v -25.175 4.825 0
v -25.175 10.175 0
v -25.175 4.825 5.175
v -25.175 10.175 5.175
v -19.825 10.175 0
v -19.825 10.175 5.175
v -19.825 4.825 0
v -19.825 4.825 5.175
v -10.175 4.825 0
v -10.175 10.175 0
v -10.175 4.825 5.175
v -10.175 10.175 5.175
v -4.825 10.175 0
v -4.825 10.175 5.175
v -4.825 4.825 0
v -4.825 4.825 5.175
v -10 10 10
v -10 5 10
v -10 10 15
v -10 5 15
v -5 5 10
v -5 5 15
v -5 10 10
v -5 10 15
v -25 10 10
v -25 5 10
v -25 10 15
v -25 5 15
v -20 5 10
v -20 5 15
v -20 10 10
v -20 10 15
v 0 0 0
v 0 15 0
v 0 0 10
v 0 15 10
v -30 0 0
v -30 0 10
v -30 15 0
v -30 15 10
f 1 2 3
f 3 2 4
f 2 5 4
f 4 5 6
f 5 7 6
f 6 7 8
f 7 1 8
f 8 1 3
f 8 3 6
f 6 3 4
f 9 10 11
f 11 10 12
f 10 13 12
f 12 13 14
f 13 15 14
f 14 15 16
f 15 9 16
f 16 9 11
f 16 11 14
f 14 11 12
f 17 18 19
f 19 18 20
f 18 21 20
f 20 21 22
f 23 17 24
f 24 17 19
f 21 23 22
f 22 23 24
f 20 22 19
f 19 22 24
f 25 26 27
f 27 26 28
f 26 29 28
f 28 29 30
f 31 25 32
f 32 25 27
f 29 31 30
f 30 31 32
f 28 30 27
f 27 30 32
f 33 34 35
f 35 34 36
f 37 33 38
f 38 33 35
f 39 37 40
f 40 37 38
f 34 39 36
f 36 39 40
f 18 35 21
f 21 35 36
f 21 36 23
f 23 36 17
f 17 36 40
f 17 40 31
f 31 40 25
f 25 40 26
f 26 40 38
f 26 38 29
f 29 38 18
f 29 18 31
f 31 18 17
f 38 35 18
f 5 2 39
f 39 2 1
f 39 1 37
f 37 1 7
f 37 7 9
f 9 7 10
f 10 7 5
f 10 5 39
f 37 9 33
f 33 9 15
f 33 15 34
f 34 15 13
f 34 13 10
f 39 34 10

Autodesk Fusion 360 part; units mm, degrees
sketch "Sketch1" plane through (0, 0, 0) normal (0, 0, 1) x (1, 0, 0)
  line L0 (0, 0) -> (-30, 0)
  line L1 (-30, 0) -> (-30, 15)
  line L2 (-30, 15) -> (0, 15)
  line L3 (0, 15) -> (0, 0)
  line L4 (-15, 0) -> (-15, 15)
  line L5 (-25, 10) -> (-20, 10)
  line L6 (-20, 10) -> (-20, 5)
  line L7 (-20, 5) -> (-25, 5)
  line L8 (-25, 5) -> (-25, 10)
  line L9 (-10, 10) -> (-5, 10)
  line L10 (-5, 10) -> (-5, 5)
  line L11 (-5, 5) -> (-10, 5)
  line L12 (-10, 5) -> (-10, 10)
  line L13 (-25.175, 10.175) -> (-19.825, 10.175)
  line L14 (-19.825, 10.175) -> (-19.825, 4.825)
  line L15 (-19.825, 4.825) -> (-25.175, 4.825)
  line L16 (-25.175, 4.825) -> (-25.175, 10.175)
  line L17 (-10.175, 10.175) -> (-4.825, 10.175)
  line L18 (-4.825, 10.175) -> (-4.825, 4.825)
  line L19 (-4.825, 4.825) -> (-10.175, 4.825)
  line L20 (-10.175, 4.825) -> (-10.175, 10.175)
  dimension "d1" = 30
  dimension "d2" = 15
  dimension "d7" = -0.175
  dimension "d8" = -0.175
extrude "Extrude1" add sketch "Sketch1" along normal blind 10 contours L0 L2 L3 L4 | L0 L1 L2 L4 | L13 L14 L15 L16 | L17 L18 L19 L20
extrude "Extrude2" add sketch "Sketch1" along normal blind 15 contours L5 L6 L7 L8 | L9 L10 L11 L12
extrude "Extrude3" cut sketch "Sketch1" along normal blind 5.175 contours L5 L6 L7 L8 | L9 L10 L11 L12 | L13 L14 L15 L16 | L17 L18 L19 L20
